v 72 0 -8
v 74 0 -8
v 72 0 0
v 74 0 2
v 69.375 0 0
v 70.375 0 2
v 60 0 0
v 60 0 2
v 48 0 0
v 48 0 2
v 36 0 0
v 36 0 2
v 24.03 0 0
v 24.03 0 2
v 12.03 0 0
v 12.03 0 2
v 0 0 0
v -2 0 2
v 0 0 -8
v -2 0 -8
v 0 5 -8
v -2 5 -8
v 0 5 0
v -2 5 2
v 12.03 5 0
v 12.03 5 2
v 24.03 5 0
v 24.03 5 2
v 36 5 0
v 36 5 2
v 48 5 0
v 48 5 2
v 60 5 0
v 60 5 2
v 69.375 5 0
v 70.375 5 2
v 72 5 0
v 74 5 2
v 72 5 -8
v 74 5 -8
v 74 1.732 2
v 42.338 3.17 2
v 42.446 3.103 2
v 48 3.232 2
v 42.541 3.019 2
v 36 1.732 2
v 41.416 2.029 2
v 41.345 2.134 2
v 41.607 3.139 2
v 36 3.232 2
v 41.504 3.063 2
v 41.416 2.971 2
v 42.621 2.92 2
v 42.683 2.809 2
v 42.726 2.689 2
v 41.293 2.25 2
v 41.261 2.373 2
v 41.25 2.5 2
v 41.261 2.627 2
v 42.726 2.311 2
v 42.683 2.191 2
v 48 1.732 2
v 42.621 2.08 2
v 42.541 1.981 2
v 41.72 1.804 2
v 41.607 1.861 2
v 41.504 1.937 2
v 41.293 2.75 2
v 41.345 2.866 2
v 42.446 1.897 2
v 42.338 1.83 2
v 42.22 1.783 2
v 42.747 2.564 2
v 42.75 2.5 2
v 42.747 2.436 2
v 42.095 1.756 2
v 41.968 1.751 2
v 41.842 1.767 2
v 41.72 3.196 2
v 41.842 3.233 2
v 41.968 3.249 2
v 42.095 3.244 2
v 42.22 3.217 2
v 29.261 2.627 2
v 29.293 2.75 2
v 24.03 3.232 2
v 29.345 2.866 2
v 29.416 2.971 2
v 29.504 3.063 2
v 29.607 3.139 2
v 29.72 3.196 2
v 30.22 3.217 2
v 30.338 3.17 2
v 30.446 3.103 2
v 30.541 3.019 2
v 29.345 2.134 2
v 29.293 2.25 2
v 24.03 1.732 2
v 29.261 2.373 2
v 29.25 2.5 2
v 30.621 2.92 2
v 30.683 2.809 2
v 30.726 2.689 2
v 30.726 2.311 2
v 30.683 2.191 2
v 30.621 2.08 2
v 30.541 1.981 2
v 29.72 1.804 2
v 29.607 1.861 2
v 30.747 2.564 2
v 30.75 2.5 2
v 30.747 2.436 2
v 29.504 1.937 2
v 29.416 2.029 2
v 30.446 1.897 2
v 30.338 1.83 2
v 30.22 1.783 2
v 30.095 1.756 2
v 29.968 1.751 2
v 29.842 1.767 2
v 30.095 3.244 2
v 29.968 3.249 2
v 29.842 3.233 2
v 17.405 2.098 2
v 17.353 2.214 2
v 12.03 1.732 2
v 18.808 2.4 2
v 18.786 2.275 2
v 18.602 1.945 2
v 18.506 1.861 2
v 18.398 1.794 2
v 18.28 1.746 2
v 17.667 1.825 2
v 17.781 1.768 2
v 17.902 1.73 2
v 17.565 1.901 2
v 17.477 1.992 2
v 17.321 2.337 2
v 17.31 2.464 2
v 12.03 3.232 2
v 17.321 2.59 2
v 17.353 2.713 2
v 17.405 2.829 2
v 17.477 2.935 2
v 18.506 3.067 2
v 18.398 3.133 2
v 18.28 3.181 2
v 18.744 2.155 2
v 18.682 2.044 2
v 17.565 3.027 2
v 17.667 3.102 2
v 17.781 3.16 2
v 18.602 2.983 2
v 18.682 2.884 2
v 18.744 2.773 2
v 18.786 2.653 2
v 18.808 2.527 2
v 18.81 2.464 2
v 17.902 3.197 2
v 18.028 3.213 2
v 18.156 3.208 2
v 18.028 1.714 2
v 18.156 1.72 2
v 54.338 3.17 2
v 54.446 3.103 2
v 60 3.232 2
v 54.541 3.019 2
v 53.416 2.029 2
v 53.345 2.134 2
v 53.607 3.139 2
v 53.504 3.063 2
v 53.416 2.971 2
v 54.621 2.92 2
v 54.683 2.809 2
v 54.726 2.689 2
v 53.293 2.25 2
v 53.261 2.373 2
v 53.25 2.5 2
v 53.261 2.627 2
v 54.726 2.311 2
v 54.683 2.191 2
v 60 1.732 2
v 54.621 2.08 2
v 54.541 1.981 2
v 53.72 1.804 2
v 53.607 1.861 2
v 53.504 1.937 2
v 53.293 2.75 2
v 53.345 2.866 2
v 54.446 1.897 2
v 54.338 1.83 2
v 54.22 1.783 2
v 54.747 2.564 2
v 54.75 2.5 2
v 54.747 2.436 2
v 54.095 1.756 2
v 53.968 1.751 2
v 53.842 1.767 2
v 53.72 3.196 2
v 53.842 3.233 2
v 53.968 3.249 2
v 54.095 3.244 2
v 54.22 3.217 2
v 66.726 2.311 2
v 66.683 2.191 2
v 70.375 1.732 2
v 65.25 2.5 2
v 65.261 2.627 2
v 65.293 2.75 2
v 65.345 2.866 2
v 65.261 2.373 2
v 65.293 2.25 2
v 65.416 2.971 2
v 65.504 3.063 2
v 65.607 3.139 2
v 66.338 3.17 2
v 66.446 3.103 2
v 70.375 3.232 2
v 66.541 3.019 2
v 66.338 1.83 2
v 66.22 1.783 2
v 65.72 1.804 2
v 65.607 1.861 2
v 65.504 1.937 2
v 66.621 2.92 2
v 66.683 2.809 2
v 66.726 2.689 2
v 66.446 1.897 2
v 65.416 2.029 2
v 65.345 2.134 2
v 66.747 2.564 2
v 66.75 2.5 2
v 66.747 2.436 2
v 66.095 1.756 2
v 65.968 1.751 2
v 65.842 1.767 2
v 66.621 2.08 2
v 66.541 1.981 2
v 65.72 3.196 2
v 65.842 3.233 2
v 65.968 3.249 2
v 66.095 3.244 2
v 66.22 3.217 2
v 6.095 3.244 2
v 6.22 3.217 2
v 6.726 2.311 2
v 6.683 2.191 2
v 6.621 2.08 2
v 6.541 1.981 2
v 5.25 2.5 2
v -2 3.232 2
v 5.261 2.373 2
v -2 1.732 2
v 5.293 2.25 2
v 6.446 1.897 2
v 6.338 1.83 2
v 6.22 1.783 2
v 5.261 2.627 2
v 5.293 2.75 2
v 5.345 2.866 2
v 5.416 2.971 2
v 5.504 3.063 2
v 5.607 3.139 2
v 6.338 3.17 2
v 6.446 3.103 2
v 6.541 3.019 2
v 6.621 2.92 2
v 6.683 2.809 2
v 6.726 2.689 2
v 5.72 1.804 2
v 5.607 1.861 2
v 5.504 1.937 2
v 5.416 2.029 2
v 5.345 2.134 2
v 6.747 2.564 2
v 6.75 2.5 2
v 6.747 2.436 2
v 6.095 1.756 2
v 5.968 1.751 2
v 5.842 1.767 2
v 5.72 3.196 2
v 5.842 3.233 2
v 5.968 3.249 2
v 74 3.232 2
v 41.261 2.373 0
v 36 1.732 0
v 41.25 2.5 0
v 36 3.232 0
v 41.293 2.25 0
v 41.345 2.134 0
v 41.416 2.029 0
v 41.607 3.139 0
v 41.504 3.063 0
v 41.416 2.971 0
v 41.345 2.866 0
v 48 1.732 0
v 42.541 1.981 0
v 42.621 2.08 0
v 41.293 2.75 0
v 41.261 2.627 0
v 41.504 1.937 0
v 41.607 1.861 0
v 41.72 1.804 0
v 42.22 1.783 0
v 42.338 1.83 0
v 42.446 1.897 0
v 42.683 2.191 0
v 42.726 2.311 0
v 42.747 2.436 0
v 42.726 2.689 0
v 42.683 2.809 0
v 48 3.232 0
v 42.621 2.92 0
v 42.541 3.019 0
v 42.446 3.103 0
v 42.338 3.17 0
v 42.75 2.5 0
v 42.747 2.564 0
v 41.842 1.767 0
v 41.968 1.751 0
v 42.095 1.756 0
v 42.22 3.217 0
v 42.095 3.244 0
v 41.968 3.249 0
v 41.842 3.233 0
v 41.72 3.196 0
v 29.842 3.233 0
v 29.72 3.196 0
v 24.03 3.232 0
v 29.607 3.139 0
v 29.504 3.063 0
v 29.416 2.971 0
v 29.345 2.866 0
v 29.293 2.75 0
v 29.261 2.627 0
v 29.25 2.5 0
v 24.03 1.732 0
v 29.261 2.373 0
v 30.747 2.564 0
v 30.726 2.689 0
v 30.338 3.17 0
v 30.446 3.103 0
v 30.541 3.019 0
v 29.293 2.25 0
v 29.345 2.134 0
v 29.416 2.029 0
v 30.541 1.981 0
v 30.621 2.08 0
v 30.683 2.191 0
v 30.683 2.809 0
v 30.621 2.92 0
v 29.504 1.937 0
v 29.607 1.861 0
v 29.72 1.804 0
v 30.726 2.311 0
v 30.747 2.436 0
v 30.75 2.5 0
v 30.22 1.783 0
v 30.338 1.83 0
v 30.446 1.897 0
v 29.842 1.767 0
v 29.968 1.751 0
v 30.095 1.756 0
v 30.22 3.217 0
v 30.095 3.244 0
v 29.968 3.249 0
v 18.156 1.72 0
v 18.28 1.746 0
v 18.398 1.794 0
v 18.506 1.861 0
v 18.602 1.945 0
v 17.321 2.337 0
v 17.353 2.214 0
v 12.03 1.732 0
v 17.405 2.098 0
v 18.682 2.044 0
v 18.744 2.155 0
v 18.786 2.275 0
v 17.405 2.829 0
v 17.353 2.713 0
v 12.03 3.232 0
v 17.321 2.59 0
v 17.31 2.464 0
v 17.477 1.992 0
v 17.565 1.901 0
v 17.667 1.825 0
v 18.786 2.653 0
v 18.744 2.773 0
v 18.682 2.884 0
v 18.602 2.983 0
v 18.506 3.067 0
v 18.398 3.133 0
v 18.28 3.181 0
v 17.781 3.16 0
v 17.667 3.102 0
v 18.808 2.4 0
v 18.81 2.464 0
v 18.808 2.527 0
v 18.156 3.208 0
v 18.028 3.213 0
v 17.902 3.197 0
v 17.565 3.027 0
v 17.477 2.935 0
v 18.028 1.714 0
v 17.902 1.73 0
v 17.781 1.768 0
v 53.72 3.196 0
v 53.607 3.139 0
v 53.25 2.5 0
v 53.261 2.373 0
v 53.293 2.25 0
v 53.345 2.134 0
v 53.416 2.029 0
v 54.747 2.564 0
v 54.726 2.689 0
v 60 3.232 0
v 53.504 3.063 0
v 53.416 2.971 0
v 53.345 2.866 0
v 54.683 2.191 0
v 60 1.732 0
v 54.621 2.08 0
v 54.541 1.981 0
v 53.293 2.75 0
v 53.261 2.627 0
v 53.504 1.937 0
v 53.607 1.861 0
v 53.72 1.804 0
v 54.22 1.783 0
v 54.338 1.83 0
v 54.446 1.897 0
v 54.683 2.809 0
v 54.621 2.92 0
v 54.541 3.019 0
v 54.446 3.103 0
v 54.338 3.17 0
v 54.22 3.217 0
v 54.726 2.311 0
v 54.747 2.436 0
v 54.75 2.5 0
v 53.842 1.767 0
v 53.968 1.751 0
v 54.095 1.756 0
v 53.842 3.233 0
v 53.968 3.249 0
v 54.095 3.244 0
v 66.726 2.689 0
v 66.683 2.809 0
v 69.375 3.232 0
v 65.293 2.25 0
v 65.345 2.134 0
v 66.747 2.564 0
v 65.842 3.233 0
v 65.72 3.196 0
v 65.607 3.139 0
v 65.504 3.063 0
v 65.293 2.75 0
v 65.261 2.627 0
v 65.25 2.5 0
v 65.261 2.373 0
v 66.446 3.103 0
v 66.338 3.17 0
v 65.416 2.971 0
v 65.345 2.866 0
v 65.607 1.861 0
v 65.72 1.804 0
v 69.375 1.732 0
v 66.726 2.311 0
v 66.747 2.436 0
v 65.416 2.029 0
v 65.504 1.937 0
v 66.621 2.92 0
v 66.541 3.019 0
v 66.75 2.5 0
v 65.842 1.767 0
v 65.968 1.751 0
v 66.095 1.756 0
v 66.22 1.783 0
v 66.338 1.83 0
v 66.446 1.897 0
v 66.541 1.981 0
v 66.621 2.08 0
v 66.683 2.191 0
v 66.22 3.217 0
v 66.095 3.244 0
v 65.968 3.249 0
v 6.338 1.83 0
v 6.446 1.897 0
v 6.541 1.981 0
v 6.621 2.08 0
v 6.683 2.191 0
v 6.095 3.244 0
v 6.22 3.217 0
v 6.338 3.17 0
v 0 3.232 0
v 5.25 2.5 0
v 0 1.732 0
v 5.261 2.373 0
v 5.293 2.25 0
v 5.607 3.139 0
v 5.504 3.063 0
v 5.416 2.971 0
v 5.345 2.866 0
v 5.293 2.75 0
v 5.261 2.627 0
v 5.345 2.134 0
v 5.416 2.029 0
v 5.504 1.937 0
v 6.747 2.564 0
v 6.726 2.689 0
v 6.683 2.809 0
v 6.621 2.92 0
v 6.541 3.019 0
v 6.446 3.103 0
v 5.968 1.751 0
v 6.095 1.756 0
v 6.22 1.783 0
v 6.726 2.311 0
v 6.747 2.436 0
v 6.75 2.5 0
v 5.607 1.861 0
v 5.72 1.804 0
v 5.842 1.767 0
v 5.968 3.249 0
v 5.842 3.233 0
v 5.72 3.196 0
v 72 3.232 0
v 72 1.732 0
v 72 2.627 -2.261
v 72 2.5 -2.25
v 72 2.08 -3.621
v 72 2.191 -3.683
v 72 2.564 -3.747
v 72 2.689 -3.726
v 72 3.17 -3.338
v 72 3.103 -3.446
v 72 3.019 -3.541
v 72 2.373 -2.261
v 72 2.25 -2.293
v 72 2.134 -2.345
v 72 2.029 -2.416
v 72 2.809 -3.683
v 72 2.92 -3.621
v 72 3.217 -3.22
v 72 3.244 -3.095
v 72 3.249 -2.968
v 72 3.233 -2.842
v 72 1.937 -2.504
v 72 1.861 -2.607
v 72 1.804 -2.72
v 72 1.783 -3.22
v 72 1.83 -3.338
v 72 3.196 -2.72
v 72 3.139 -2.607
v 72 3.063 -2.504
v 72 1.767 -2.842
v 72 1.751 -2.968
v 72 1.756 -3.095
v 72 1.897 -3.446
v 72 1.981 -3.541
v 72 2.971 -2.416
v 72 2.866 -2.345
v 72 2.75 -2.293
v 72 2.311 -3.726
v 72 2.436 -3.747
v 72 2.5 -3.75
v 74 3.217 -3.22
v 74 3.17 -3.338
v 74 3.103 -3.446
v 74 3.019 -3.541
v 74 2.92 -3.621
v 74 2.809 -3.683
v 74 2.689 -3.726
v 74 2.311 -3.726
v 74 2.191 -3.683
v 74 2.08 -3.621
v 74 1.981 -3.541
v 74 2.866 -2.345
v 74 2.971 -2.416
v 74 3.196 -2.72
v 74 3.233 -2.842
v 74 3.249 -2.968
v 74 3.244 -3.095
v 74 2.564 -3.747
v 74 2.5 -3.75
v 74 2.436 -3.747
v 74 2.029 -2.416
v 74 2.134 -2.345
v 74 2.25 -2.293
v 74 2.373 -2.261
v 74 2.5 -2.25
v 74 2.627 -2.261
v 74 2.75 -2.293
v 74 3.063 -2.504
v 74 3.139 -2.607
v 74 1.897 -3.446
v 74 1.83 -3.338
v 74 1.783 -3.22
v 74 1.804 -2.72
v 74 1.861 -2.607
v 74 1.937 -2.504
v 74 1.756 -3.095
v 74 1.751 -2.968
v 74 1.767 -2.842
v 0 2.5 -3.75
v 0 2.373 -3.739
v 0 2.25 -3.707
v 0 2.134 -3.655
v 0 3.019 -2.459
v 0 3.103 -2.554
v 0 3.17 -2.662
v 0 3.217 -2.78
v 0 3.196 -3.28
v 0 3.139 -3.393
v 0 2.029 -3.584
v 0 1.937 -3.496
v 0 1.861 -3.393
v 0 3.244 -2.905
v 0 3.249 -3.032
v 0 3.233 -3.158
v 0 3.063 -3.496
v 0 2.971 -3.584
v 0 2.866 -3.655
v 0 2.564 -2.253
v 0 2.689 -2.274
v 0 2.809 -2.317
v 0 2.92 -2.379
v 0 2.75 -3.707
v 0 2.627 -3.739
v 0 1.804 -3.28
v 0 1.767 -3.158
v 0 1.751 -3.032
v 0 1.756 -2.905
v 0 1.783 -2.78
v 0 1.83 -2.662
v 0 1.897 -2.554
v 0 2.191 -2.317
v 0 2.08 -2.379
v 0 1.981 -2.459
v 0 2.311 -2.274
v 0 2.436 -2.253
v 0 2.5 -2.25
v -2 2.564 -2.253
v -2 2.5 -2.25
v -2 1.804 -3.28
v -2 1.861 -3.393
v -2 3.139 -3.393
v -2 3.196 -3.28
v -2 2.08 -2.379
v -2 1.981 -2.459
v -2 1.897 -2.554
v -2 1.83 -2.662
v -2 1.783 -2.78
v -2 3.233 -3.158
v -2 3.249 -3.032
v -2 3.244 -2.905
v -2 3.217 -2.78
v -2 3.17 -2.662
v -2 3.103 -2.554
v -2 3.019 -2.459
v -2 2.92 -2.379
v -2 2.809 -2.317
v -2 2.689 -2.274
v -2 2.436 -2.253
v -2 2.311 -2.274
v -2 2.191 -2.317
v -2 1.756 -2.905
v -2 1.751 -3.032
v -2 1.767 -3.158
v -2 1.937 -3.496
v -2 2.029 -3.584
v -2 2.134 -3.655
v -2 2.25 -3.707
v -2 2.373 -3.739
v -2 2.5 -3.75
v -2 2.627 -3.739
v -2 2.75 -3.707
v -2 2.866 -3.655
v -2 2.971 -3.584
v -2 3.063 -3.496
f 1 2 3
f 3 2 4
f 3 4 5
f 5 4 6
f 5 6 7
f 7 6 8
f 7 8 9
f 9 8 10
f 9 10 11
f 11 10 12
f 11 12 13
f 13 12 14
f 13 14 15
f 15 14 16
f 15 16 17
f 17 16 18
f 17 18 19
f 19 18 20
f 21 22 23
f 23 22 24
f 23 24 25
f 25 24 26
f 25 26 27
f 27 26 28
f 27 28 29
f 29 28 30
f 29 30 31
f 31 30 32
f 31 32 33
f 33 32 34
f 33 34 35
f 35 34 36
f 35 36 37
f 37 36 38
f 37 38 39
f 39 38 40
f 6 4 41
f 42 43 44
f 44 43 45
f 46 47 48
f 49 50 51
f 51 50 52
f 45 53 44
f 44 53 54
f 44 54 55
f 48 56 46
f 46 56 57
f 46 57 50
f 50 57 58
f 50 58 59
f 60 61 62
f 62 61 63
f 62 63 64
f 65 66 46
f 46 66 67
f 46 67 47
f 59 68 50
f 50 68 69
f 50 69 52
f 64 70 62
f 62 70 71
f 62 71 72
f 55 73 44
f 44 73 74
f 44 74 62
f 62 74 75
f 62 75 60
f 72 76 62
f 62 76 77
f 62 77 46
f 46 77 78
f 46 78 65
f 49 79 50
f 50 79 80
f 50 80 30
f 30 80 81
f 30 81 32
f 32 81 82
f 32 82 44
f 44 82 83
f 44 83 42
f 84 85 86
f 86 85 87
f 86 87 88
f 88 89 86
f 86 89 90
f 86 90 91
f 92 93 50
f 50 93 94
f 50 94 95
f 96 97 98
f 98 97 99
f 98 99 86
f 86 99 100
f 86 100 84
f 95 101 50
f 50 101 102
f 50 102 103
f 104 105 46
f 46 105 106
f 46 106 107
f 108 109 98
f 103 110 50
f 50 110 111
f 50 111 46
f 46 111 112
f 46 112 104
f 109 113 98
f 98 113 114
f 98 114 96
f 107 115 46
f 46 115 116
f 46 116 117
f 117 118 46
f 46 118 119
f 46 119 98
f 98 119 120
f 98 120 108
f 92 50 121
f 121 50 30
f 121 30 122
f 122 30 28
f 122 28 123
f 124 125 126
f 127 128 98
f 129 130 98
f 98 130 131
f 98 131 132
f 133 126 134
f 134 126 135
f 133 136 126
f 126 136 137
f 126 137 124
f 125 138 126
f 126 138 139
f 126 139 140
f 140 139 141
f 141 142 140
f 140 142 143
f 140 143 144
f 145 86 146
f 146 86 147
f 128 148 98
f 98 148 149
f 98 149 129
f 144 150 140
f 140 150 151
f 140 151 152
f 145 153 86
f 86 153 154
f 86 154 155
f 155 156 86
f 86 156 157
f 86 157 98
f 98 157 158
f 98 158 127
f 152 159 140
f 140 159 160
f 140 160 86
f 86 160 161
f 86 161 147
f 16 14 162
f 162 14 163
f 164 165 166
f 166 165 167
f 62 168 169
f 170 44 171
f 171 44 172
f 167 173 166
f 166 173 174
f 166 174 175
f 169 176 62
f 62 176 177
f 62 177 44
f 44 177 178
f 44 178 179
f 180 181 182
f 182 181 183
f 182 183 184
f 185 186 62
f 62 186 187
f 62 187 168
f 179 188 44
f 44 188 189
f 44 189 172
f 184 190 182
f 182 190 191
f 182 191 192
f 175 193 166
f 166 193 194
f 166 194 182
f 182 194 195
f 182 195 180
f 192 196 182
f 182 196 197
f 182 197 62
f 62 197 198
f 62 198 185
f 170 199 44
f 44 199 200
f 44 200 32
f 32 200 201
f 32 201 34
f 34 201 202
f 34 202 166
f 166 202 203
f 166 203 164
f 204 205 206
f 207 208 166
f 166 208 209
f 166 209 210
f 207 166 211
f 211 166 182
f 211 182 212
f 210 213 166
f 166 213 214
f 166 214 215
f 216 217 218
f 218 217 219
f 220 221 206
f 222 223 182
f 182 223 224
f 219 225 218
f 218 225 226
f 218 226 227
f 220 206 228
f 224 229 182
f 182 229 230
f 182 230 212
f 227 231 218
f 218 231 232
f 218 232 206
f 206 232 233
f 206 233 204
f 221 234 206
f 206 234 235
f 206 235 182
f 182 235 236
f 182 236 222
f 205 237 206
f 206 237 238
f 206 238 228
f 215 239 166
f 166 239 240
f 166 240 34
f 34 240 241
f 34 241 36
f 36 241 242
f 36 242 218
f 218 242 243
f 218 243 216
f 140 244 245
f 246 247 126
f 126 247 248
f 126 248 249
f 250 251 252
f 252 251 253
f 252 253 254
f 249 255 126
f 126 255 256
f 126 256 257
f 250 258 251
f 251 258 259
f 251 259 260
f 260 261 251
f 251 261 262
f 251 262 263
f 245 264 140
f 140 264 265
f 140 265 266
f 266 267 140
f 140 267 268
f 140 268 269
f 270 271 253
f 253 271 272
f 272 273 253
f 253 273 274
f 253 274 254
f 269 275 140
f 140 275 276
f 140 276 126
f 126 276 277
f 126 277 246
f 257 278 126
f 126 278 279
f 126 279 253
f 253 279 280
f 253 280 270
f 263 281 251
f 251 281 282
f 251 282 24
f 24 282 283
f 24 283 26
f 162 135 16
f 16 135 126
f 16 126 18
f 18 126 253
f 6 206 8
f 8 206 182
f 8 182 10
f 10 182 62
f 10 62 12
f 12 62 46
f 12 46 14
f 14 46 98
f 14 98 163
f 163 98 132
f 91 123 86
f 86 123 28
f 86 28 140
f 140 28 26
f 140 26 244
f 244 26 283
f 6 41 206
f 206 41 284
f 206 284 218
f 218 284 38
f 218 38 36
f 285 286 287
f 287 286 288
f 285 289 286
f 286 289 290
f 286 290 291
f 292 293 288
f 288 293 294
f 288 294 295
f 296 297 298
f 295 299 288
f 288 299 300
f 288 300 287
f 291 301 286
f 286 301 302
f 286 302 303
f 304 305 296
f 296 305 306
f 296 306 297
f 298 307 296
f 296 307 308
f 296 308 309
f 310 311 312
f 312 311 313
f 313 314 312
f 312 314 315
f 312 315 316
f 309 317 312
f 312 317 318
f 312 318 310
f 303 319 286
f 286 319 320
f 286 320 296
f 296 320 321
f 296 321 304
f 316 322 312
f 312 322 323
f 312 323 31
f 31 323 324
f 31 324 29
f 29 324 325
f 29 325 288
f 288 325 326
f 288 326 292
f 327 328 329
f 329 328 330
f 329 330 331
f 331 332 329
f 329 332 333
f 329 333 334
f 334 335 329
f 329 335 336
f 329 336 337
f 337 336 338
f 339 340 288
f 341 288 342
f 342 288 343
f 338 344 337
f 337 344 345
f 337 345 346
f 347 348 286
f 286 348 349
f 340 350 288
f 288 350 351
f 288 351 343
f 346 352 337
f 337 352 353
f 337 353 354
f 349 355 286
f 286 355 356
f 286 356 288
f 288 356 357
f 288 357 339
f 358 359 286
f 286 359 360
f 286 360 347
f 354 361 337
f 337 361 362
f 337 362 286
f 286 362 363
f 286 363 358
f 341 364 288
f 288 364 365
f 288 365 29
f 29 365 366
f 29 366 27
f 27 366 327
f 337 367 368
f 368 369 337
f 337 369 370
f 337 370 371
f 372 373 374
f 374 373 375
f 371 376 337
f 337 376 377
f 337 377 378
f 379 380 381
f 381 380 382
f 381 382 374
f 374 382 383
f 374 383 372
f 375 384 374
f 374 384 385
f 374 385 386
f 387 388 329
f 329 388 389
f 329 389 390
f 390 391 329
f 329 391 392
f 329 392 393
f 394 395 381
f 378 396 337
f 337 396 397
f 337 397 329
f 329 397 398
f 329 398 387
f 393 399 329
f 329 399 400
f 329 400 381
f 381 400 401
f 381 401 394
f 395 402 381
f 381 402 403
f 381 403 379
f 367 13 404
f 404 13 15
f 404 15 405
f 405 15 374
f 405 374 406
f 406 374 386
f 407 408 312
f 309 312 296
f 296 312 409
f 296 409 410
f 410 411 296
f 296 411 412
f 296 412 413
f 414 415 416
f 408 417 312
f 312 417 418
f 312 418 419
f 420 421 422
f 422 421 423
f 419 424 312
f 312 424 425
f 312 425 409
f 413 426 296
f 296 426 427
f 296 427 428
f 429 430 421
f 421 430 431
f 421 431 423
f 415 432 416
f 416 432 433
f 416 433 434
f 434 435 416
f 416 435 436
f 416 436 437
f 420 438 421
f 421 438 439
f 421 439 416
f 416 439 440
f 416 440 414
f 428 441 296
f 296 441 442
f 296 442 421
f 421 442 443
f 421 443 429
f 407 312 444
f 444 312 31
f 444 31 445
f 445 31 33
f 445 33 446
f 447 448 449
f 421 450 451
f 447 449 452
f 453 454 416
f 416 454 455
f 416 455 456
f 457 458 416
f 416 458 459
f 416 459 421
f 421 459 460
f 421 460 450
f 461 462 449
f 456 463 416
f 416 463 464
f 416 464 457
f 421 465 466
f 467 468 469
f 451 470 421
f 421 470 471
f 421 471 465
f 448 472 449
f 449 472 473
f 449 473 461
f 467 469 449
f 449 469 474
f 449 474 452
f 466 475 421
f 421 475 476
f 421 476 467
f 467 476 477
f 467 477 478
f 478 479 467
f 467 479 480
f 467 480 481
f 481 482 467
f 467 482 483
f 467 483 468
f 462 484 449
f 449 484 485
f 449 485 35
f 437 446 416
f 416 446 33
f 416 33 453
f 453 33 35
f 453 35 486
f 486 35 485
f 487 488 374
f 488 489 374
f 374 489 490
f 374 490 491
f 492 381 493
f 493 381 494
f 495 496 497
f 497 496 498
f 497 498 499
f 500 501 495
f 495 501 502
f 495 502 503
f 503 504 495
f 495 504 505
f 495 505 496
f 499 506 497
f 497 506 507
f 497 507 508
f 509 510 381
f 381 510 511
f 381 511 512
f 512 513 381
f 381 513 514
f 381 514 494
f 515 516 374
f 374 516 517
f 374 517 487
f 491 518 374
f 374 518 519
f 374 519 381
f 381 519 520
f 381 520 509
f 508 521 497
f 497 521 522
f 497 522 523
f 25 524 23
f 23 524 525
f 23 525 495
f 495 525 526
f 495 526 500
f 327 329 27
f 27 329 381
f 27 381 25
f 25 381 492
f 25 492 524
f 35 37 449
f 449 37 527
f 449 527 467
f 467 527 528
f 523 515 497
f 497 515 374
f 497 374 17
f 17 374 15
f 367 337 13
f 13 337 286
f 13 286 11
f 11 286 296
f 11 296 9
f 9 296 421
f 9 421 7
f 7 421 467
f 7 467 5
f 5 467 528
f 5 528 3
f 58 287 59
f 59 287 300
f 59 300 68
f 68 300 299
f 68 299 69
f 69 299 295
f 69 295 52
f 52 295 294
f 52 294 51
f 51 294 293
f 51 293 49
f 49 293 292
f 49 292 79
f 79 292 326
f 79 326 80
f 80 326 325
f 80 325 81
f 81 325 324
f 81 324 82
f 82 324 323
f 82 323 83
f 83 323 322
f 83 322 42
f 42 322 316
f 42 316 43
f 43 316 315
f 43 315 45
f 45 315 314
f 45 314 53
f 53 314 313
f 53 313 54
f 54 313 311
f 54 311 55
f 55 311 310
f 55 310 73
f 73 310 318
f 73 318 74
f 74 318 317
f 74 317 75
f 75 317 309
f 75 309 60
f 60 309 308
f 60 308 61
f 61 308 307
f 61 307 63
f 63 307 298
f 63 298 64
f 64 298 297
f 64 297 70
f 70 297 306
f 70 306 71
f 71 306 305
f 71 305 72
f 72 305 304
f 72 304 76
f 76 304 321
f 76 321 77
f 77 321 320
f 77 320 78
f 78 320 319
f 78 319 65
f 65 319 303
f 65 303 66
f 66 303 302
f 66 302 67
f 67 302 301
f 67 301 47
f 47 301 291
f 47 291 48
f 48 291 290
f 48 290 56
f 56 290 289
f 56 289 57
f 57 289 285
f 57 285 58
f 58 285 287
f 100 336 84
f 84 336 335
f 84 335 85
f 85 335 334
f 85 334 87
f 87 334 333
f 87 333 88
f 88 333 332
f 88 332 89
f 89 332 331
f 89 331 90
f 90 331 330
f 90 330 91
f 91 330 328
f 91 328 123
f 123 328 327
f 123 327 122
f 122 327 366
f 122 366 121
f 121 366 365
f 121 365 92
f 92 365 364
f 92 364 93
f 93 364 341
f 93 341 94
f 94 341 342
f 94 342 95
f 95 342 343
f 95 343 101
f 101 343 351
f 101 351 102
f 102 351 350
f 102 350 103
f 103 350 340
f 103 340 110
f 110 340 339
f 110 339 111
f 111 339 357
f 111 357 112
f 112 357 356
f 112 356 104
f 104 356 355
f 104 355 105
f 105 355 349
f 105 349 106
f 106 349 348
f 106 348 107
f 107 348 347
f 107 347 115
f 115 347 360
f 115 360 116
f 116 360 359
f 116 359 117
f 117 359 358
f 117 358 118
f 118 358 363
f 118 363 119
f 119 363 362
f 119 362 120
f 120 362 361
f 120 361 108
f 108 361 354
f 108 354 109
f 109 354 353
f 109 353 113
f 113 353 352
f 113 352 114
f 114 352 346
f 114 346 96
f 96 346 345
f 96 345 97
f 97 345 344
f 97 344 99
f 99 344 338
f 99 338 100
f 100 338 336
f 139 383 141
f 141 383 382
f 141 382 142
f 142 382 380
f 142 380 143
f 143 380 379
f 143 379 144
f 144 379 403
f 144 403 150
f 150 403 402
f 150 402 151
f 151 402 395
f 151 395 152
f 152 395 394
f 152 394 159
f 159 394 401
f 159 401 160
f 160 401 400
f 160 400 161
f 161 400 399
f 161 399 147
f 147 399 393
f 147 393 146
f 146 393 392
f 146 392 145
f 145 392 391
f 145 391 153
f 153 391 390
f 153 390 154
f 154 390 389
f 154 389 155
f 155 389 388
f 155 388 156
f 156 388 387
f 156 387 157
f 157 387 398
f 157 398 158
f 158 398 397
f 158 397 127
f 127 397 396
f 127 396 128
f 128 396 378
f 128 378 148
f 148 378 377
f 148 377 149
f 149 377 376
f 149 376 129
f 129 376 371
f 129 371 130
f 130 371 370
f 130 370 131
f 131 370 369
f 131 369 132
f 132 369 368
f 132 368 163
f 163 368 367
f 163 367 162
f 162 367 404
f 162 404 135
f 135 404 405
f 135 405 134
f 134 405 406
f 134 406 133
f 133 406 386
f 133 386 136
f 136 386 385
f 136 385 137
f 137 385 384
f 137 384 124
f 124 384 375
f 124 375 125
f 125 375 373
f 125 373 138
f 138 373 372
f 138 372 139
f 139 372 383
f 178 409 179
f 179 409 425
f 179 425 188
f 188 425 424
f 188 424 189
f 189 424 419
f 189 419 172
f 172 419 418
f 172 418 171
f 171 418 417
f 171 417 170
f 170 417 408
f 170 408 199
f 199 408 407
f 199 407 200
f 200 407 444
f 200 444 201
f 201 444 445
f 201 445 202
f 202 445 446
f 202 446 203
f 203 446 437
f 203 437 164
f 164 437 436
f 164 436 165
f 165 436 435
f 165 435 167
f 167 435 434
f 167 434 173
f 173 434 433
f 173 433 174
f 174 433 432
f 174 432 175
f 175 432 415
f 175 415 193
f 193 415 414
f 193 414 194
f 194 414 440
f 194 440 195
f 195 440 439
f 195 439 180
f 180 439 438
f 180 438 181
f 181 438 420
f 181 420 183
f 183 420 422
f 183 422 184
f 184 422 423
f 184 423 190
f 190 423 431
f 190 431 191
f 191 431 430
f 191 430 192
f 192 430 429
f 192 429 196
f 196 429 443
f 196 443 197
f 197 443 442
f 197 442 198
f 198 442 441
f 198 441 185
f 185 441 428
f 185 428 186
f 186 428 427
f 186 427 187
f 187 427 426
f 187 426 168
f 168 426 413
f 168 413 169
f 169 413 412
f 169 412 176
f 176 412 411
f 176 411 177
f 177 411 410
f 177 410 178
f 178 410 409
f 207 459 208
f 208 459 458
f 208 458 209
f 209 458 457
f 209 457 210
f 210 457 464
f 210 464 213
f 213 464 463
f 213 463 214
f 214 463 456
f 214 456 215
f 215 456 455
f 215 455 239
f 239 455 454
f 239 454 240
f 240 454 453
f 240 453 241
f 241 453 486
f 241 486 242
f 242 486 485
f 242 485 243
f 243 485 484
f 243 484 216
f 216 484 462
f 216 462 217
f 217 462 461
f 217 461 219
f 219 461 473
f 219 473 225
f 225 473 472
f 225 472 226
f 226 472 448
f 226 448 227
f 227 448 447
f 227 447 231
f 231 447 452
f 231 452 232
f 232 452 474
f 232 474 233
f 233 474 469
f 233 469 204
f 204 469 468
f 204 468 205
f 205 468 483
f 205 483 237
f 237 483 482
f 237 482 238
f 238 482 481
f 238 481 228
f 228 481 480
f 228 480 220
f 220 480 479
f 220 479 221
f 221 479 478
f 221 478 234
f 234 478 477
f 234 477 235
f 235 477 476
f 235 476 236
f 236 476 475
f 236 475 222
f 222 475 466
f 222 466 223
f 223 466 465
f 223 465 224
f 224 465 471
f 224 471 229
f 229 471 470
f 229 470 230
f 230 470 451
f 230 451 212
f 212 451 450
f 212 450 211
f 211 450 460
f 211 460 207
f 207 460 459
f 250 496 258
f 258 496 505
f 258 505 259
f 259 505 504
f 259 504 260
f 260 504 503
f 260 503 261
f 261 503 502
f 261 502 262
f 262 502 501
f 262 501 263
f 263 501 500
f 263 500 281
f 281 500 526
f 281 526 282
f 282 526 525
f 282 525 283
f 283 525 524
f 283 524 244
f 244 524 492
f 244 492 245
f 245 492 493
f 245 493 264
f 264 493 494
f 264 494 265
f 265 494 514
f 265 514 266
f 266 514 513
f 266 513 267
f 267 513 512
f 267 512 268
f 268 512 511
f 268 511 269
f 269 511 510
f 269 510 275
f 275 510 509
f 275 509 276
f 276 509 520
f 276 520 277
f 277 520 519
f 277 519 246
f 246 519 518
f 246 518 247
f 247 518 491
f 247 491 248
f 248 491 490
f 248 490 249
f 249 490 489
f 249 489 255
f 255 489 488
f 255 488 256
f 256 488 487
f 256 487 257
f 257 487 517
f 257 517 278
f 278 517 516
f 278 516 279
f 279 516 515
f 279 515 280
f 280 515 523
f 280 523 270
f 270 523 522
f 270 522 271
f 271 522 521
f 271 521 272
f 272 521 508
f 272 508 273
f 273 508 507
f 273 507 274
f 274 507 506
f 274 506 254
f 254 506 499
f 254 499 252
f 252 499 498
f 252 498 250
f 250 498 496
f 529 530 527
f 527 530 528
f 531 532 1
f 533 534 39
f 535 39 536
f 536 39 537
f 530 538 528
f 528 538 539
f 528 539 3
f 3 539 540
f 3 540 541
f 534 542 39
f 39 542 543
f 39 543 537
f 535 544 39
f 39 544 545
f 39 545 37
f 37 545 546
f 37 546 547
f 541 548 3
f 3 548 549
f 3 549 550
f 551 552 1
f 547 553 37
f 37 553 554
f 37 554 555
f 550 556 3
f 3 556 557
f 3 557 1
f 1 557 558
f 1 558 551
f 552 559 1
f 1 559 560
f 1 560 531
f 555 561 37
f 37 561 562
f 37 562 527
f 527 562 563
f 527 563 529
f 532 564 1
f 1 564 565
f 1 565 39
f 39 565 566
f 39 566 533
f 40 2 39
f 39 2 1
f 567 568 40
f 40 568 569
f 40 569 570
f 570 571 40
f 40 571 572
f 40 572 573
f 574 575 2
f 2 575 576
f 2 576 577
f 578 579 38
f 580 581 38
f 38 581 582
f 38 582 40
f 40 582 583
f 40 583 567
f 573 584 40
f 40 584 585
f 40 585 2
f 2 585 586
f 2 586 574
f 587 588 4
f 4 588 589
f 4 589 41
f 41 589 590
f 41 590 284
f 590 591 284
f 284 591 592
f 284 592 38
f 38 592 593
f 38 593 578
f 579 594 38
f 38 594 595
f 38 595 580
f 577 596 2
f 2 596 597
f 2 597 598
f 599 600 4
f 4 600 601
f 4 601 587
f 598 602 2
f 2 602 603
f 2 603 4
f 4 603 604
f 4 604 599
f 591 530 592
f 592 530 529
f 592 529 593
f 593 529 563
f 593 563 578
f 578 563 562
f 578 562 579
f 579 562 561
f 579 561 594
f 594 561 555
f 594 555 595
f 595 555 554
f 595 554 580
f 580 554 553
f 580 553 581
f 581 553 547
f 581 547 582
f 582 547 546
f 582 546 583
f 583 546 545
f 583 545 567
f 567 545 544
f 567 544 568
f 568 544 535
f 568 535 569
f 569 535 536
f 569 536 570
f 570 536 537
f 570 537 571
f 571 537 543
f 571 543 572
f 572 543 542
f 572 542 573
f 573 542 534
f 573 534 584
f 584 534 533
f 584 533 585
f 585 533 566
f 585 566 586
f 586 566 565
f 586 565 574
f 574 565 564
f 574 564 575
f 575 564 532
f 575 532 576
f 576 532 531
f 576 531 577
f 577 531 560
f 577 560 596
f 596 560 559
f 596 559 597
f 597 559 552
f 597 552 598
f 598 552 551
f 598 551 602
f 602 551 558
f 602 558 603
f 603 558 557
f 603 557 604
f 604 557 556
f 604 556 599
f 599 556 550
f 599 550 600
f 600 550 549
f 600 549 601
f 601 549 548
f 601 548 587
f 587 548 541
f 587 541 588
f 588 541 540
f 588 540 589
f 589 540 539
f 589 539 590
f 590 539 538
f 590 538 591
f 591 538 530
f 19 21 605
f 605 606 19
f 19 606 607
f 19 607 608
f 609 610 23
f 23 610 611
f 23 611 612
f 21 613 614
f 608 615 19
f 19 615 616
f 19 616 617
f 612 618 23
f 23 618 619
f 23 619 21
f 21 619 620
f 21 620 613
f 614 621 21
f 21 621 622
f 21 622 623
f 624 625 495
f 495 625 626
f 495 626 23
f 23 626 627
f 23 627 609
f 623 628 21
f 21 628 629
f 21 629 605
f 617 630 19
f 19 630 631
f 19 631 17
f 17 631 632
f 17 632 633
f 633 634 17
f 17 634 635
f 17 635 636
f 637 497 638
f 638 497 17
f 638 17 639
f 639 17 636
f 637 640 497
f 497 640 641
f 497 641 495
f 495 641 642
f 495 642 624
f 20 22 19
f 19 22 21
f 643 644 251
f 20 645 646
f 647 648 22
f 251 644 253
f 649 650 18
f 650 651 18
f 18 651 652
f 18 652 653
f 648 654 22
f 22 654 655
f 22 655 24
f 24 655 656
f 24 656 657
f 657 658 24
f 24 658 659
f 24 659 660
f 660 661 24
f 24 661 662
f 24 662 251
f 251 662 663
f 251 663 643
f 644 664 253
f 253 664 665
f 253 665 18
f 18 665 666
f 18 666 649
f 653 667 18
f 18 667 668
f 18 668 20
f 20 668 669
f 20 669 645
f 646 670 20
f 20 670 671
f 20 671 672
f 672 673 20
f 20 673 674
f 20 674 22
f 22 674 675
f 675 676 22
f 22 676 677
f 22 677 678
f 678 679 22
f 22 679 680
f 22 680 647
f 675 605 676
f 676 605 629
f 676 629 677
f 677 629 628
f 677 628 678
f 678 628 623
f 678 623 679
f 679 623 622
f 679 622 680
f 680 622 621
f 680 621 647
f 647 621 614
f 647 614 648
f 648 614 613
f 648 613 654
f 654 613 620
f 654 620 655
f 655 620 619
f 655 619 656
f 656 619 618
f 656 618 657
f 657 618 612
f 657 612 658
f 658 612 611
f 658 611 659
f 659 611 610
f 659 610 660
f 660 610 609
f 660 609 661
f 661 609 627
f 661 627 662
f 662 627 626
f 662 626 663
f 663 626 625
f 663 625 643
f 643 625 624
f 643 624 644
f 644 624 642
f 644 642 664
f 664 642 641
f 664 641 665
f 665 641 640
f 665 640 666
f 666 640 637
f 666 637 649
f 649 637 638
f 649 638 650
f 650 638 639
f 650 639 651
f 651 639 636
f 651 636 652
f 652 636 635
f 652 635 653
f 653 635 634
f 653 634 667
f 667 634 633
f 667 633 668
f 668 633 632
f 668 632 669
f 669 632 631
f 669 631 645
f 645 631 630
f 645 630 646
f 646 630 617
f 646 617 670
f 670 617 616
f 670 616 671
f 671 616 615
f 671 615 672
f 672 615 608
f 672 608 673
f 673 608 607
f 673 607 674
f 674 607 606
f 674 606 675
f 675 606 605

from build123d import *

# Parameters (mm, degrees)
SKETCH1_W           = 72
SKETCH1_H           = 5
BOSS_EXTRUDE1_DEPTH = 2
SKETCH3_R           = 0.75
CUT_EXTRUDE2_DEPTH  = 2
SKETCH4_W           = 10
SKETCH4_H           = 5
BOSS_EXTRUDE2_DEPTH = 2
SKETCH5_R           = 0.75
CUT_EXTRUDE4_DEPTH  = 2
SKETCH6_W           = 10
SKETCH6_H           = 5
BOSS_EXTRUDE3_DEPTH = 2
SKETCH7_R           = 0.75
CUT_EXTRUDE5_DEPTH  = 2


with BuildPart() as part:
    # Sketch1 → Boss-Extrude1 (new body)
    with BuildSketch(Plane.XY):
        with Locations((36, 2.5)):
            Rectangle(SKETCH1_W, SKETCH1_H)
    extrude(amount=BOSS_EXTRUDE1_DEPTH)

    # Sketch3 → Cut-Extrude2 (cut)
    with BuildSketch(Plane.XY):
        with Locations((42, 2.5)):
            Circle(SKETCH3_R)
        with Locations((54, 2.5)):
            Circle(SKETCH3_R)
        with Locations((66, 2.5)):
            Circle(SKETCH3_R)
        with Locations((30, 2.5)):
            Circle(SKETCH3_R)
        with Locations((18.06024044, 2.463599586)):
            Circle(SKETCH3_R)
        with Locations((6, 2.5)):
            Circle(SKETCH3_R)
    extrude(amount=CUT_EXTRUDE2_DEPTH, mode=Mode.SUBTRACT)

    # Sketch4 → Boss-Extrude2 (add)
    with BuildSketch(Plane(origin=(72, 0, 0), x_dir=(0, 0, -1), z_dir=(1, 0, 0))):
        with Locations((3, 2.5)):
            Rectangle(SKETCH4_W, SKETCH4_H)
    extrude(amount=BOSS_EXTRUDE2_DEPTH)

    # Sketch5 → Cut-Extrude4 (cut)
    with BuildSketch(Plane(origin=(72, 0, 0), x_dir=(0, 0, -1), z_dir=(1, 0, 0))):
        with Locations((3, 2.5)):
            Circle(SKETCH5_R)
    extrude(amount=CUT_EXTRUDE4_DEPTH, mode=Mode.SUBTRACT)

    # Sketch6 → Boss-Extrude3 (add)
    with BuildSketch(Plane.ZY):
        with Locations((-3, 2.5)):
            Rectangle(SKETCH6_W, SKETCH6_H)
    extrude(amount=BOSS_EXTRUDE3_DEPTH)

    # Sketch7 → Cut-Extrude5 (cut)
    with BuildSketch(Plane.ZY):
        with Locations((-3, 2.5)):
            Circle(SKETCH7_R)
    extrude(amount=CUT_EXTRUDE5_DEPTH, mode=Mode.SUBTRACT)


solid = part.part
